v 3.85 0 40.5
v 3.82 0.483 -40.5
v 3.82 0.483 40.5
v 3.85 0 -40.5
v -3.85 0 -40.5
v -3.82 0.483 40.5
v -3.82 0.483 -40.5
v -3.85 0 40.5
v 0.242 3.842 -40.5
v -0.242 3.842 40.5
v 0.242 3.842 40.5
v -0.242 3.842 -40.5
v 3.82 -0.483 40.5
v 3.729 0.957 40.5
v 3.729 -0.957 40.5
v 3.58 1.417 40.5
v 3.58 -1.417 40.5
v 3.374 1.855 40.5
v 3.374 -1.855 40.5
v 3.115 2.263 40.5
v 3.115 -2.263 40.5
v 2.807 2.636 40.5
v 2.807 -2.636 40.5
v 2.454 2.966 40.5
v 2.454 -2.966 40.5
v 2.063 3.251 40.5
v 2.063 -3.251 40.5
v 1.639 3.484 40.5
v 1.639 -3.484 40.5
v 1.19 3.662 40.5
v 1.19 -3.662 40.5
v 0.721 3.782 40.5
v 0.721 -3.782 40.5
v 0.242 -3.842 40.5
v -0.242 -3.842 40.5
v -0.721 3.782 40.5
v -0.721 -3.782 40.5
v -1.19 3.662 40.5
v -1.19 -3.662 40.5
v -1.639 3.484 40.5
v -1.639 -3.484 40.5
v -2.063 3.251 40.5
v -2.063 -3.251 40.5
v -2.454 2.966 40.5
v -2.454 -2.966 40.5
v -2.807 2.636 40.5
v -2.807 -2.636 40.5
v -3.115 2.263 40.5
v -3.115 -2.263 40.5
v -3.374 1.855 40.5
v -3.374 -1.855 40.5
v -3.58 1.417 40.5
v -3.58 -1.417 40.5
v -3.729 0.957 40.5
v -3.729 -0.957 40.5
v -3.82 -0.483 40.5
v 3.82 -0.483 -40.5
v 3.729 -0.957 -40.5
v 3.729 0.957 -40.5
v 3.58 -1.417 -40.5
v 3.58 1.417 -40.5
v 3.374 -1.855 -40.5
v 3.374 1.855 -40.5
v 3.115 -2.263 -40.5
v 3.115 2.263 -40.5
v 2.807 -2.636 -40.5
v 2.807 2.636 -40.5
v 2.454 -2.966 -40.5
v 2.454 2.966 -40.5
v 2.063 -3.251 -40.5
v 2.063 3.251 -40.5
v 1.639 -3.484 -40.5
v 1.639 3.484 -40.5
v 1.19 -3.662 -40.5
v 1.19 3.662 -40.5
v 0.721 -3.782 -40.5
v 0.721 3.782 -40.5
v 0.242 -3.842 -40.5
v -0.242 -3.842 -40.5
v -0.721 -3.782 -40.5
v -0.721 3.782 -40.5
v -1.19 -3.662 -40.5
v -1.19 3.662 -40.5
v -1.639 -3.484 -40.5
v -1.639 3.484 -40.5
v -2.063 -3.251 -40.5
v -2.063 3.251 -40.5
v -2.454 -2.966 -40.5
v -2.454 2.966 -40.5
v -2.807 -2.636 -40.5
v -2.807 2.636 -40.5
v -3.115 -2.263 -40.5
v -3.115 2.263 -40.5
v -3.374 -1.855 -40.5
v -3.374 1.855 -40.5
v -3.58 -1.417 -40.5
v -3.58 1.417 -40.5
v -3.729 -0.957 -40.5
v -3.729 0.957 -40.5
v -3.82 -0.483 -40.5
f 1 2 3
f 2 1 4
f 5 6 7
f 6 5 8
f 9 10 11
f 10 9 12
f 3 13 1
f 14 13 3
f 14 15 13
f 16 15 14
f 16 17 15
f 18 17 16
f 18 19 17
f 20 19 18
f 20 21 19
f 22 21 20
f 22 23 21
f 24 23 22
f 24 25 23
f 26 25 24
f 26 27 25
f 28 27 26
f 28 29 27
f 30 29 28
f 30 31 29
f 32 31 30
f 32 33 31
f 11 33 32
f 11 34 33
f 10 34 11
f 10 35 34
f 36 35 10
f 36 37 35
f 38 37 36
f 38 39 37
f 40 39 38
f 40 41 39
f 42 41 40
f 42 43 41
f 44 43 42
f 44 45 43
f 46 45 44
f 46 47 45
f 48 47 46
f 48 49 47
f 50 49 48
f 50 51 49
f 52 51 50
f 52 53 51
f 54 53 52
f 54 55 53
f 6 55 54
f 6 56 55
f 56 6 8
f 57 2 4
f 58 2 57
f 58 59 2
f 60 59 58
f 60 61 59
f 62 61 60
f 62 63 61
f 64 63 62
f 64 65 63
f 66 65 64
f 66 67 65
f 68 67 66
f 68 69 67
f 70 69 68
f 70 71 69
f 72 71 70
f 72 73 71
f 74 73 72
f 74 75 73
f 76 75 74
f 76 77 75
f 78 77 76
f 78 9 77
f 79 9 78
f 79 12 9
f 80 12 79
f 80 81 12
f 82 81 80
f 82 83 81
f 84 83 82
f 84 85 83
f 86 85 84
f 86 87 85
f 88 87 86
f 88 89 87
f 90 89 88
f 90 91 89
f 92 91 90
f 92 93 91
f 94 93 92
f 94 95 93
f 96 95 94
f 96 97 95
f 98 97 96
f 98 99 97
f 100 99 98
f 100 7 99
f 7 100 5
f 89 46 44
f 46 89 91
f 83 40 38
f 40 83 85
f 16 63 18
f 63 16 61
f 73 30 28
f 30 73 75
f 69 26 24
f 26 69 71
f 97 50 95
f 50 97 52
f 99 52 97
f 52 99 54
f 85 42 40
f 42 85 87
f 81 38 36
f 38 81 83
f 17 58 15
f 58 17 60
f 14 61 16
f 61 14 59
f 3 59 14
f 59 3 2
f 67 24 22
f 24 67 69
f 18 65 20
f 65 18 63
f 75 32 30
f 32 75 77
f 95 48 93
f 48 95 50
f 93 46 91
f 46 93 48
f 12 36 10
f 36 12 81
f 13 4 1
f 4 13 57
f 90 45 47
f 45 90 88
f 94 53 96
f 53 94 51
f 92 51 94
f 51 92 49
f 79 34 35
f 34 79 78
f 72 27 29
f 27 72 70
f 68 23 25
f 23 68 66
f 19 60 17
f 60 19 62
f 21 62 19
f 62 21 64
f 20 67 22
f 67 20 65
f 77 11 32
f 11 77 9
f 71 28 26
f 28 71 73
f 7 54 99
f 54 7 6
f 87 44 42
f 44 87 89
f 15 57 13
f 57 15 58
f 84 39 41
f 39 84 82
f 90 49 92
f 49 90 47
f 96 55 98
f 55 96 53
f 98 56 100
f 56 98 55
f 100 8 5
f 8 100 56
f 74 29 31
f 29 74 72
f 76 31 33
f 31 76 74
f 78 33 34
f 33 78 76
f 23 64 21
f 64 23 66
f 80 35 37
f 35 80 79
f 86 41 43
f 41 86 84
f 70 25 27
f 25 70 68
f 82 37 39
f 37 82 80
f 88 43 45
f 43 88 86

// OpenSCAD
$fn = 50;


difference() {
	union() {
		translate(v = [0, 0, -40.5000000000]) {
			cylinder(h = 81, r = 3.8500000000);
		}
	}
	union() {
		translate(v = [0, 0, -100.0000000000]) {
			cylinder(h = 200, r = 0);
		}
	}
}
